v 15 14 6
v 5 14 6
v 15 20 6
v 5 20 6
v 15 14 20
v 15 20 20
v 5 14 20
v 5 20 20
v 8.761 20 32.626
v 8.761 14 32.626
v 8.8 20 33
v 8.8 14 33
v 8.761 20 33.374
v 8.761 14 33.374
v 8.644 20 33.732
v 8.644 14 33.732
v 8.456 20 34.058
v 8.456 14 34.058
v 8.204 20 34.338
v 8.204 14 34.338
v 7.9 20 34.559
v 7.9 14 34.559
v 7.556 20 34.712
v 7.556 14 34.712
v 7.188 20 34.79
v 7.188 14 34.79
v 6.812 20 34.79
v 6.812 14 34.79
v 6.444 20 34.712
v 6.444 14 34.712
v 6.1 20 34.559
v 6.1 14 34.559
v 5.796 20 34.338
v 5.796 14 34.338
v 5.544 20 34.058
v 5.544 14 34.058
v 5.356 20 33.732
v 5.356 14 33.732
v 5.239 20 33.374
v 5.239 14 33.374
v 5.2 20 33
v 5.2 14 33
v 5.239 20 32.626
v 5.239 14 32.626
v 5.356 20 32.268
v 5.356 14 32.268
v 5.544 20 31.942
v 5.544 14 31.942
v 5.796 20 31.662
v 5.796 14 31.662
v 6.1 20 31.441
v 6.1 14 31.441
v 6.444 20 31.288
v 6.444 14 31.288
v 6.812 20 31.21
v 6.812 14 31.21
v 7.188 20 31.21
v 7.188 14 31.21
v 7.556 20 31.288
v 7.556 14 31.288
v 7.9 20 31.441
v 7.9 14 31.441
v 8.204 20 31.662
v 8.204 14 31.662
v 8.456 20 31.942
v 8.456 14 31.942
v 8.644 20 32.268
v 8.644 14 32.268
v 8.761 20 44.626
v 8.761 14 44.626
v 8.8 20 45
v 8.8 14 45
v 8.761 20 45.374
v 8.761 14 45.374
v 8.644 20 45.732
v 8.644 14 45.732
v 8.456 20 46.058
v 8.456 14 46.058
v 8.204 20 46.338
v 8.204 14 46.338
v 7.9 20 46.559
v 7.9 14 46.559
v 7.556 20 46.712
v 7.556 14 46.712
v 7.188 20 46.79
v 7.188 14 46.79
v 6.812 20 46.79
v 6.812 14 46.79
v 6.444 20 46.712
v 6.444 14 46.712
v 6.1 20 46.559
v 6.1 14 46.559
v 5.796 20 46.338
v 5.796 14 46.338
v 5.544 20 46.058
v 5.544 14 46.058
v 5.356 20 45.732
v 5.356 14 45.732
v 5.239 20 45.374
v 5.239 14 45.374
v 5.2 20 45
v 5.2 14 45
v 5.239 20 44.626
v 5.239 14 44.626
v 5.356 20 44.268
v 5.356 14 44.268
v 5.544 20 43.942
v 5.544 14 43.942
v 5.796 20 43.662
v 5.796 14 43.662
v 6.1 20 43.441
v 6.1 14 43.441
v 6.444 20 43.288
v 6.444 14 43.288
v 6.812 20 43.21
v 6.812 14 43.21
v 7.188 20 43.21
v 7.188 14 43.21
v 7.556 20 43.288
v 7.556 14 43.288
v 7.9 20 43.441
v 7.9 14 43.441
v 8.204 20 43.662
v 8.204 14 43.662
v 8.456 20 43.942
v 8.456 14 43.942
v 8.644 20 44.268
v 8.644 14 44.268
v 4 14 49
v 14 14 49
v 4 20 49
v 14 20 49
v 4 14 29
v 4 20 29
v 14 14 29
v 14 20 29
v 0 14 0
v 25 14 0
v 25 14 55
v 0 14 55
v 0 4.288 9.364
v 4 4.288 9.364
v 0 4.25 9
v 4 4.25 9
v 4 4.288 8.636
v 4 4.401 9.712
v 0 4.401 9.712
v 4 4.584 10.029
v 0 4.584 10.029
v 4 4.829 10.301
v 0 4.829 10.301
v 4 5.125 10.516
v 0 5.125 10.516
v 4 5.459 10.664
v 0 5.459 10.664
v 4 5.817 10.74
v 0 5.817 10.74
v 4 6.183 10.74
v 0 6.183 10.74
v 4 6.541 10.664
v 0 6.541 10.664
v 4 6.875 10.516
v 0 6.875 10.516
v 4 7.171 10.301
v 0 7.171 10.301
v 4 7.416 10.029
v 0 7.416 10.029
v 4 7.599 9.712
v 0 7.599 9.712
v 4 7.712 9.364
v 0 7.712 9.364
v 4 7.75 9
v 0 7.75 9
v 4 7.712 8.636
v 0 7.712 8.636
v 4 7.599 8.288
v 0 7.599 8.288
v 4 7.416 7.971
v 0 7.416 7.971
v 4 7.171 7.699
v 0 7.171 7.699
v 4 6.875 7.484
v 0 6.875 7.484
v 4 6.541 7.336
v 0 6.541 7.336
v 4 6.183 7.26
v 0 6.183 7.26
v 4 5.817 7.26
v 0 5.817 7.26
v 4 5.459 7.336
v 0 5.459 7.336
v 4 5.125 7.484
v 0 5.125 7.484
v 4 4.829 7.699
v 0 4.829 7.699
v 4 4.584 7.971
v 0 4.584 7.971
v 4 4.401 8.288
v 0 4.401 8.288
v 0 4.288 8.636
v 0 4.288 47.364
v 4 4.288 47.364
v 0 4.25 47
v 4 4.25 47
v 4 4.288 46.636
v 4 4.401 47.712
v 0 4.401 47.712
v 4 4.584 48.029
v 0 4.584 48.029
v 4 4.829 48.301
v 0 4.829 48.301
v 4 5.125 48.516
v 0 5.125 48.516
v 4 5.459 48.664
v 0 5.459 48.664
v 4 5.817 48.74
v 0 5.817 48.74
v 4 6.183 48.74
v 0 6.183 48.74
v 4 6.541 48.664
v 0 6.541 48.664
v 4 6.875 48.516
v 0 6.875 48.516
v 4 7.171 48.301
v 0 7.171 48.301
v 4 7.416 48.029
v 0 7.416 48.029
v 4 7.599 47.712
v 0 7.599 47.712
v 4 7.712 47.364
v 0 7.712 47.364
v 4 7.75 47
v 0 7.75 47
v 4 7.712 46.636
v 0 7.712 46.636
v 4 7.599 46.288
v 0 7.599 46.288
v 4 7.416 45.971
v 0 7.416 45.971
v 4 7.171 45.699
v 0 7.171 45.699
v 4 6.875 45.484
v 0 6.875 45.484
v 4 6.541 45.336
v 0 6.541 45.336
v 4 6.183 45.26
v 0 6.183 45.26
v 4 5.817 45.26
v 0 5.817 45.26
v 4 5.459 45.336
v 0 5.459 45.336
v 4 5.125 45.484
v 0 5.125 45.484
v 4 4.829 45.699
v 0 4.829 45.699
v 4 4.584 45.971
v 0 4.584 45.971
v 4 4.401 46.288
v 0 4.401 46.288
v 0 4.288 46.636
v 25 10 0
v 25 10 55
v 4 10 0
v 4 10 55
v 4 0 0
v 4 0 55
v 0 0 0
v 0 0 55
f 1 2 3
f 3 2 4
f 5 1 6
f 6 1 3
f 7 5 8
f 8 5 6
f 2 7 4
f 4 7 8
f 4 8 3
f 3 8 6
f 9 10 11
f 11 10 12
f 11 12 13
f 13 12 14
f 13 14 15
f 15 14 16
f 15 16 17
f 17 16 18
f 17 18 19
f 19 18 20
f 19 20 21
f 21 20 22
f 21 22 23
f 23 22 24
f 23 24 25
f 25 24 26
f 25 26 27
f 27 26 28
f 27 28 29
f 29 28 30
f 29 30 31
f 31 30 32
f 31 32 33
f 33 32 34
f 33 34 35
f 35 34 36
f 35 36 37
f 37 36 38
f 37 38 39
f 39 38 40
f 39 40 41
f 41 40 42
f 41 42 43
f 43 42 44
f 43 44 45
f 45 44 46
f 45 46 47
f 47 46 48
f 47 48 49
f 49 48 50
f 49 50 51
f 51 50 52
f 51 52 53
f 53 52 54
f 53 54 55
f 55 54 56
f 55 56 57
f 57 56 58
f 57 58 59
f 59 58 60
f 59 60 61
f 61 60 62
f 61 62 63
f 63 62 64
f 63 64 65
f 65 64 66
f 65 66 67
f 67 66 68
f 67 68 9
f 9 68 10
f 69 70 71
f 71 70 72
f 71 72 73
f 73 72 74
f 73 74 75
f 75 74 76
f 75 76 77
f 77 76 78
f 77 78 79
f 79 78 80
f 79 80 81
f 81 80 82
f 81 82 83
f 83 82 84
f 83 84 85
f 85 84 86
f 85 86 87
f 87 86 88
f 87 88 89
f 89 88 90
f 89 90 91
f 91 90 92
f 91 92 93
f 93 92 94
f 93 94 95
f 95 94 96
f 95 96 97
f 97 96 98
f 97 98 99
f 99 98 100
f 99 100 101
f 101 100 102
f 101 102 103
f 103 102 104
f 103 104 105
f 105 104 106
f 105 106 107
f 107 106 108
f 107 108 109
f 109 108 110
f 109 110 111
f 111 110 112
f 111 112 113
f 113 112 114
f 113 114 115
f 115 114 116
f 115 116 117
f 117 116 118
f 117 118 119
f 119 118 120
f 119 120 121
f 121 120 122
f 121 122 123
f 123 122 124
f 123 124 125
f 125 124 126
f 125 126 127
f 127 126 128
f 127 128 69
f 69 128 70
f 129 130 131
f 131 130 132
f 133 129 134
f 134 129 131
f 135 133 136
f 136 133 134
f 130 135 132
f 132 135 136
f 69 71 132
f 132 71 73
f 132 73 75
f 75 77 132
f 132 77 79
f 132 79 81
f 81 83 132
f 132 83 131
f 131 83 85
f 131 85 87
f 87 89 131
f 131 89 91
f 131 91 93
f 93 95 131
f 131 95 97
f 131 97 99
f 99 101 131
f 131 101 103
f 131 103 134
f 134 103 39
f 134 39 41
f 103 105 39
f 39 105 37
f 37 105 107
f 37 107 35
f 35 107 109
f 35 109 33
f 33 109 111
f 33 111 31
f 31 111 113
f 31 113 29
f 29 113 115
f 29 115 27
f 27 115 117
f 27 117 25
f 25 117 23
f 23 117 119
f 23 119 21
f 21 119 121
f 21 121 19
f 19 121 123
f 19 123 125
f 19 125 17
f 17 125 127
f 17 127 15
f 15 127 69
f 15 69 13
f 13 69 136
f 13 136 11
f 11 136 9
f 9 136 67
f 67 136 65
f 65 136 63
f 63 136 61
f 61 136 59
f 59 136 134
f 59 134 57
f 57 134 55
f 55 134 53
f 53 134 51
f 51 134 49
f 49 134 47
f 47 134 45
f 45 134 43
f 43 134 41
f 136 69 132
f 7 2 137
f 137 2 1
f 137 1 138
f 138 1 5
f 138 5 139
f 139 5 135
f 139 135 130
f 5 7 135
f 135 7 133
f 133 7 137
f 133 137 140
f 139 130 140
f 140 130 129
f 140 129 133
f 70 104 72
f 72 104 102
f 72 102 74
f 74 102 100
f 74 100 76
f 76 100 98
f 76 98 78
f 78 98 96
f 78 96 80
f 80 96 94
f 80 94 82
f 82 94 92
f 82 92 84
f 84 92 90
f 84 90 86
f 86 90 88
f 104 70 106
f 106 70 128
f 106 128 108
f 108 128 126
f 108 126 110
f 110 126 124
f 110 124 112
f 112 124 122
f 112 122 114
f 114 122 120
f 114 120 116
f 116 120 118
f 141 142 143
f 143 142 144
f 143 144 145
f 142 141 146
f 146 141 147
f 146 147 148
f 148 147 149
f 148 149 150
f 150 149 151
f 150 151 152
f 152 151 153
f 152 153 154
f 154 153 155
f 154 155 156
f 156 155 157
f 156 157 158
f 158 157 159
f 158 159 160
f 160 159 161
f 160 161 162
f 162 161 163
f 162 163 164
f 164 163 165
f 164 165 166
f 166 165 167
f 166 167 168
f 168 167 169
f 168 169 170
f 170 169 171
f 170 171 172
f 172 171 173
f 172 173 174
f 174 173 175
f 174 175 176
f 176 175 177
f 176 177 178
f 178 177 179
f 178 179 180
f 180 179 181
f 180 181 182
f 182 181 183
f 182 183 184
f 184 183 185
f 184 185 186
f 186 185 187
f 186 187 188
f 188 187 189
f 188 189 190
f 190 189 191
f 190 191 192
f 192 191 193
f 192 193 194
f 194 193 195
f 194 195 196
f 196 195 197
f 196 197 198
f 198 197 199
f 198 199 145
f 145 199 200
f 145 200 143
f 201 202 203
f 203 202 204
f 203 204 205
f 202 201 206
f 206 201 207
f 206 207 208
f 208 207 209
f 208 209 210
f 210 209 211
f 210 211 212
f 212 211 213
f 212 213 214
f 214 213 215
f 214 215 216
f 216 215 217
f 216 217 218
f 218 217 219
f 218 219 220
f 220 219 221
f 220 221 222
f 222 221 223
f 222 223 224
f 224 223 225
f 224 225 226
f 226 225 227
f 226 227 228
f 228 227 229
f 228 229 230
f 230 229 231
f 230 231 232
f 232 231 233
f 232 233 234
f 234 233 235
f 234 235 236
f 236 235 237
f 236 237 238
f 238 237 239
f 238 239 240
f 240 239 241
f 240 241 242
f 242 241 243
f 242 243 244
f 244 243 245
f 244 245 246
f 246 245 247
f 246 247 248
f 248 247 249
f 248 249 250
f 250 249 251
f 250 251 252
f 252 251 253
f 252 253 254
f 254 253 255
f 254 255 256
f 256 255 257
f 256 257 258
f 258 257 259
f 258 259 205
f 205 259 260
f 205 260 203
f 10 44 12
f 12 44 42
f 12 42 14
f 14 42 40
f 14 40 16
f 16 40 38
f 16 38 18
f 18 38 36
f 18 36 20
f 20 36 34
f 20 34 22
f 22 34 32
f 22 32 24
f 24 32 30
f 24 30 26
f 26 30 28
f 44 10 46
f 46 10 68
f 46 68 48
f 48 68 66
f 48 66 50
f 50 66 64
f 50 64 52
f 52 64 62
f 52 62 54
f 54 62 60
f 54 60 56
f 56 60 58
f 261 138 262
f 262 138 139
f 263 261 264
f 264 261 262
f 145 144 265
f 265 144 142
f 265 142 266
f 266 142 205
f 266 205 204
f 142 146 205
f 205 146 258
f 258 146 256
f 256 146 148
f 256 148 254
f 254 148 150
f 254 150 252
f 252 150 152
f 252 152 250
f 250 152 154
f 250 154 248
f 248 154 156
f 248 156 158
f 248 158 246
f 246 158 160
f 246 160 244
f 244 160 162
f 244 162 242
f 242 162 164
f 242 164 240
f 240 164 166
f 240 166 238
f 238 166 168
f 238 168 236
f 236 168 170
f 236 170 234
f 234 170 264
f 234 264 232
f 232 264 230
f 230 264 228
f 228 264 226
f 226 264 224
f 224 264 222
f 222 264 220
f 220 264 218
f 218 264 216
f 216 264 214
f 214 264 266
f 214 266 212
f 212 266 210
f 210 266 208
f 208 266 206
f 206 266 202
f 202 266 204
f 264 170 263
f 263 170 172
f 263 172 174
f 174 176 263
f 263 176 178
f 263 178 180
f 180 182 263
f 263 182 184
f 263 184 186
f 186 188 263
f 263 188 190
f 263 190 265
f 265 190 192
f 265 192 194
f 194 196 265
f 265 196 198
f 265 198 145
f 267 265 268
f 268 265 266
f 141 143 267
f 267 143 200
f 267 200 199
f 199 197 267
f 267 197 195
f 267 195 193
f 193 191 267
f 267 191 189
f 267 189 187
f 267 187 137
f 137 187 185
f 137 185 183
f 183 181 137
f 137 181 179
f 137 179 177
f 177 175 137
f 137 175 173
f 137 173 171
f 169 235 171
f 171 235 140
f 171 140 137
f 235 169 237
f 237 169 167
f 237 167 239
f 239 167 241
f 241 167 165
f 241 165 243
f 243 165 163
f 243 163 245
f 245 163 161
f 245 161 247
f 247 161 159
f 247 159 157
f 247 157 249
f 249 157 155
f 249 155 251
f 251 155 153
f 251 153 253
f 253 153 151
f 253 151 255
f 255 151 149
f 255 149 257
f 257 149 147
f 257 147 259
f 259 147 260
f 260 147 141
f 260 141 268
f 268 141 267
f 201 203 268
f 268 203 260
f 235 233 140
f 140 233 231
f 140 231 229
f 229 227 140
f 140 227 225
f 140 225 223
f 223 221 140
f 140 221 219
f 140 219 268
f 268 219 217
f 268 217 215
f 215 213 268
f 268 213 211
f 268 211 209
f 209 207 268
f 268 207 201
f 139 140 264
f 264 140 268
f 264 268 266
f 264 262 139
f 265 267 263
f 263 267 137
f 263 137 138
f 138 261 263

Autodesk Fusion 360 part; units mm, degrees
sketch "Szkic3" plane through (0, 0, 0) normal (0, 0, 1) x (1, 0, 0)
  line L0 (0, 0) -> (4, 0)
  line L1 (4, 0) -> (4, 10)
  line L2 (4, 10) -> (25, 10)
  line L3 (25, 10) -> (25, 14)
  line L4 (25, 14) -> (0, 14)
  line L5 (0, 14) -> (0, 0)
extrude "Wyciągnięcie proste3" add sketch "Szkic3" along normal blind 55
sketch "Szkic4" plane through (4, 0, 0) normal (1, 0, 0) x (0, 1, 0)
  line L0 (0, 0) -> (10, 0)
  line L1 (10, 0) -> (10, 55)
  line L2 (10, 55) -> (0, 55)
  line L3 (0, 55) -> (0, 0)
  circle A0 centre (6, 9) radius 1.75
  circle A1 centre (6, 47) radius 1.75
  dimension "d19" = 38
  dimension "d20" = 3.5
  dimension "d21" = 3.5
extrude "Wyciągnięcie proste4" cut sketch "Szkic4" against normal blind 4 contours A0 | A1
sketch "Szkic5" plane through (25, 0, 0) normal (1, 0, 0) x (0, 1, 0)
  line L0 (10, 0) -> (14, 0)
  line L1 (14, 0) -> (14, 55)
  line L2 (14, 55) -> (10, 55)
  line L3 (10, 55) -> (10, 0)
  line L4 (14, 55) -> (0, 55)
  line L5 (0, 55) -> (0, 15)
  line L6 (0, 15) -> (14, 15)
  line L7 (14, 15) -> (14, 55)
  line L8 (14, 3) -> (0, 3)
  line L9 (0, 3) -> (0, 0)
  line L10 (0, 0) -> (14, 0)
  line L11 (14, 0) -> (14, 3)
sketch "Szkic6" plane through (0, 14, 0) normal (0, 1, 0) x (-1, 0, 0)
  line L0 (-25, 0) -> (0, 0)
  line L1 (0, 0) -> (0, 55)
  line L2 (0, 55) -> (-25, 55)
  line L3 (-25, 55) -> (-25, 0)
  line L4 (-10, 49) -> (-4, 49)
  line L5 (-4, 49) -> (-4, 29)
  line L6 (-4, 29) -> (-10, 29)
  circle A0 centre (-7, 45) radius 1.8
  line L7 (-5, 20) -> (-15, 20)
  line L8 (-15, 20) -> (-15, 6)
  line L9 (-15, 6) -> (-5, 6)
  line L10 (-5, 6) -> (-5, 20)
  line L11 (-10, 29) -> (-14, 29)
  line L12 (-14, 29) -> (-14, 49)
  line L13 (-14, 49) -> (-10, 49)
  circle A1 centre (-7, 33) radius 1.8
  dimension "d24" = 3.6
  dimension "d25" = 10
  dimension "d26" = 14
  dimension "d27" = 3.6
extrude "Wyciągnięcie proste5" add sketch "Szkic6" along normal blind 6 contours L4 L5 L6 L11 L12 L13 | L7 L8 L9 L10
